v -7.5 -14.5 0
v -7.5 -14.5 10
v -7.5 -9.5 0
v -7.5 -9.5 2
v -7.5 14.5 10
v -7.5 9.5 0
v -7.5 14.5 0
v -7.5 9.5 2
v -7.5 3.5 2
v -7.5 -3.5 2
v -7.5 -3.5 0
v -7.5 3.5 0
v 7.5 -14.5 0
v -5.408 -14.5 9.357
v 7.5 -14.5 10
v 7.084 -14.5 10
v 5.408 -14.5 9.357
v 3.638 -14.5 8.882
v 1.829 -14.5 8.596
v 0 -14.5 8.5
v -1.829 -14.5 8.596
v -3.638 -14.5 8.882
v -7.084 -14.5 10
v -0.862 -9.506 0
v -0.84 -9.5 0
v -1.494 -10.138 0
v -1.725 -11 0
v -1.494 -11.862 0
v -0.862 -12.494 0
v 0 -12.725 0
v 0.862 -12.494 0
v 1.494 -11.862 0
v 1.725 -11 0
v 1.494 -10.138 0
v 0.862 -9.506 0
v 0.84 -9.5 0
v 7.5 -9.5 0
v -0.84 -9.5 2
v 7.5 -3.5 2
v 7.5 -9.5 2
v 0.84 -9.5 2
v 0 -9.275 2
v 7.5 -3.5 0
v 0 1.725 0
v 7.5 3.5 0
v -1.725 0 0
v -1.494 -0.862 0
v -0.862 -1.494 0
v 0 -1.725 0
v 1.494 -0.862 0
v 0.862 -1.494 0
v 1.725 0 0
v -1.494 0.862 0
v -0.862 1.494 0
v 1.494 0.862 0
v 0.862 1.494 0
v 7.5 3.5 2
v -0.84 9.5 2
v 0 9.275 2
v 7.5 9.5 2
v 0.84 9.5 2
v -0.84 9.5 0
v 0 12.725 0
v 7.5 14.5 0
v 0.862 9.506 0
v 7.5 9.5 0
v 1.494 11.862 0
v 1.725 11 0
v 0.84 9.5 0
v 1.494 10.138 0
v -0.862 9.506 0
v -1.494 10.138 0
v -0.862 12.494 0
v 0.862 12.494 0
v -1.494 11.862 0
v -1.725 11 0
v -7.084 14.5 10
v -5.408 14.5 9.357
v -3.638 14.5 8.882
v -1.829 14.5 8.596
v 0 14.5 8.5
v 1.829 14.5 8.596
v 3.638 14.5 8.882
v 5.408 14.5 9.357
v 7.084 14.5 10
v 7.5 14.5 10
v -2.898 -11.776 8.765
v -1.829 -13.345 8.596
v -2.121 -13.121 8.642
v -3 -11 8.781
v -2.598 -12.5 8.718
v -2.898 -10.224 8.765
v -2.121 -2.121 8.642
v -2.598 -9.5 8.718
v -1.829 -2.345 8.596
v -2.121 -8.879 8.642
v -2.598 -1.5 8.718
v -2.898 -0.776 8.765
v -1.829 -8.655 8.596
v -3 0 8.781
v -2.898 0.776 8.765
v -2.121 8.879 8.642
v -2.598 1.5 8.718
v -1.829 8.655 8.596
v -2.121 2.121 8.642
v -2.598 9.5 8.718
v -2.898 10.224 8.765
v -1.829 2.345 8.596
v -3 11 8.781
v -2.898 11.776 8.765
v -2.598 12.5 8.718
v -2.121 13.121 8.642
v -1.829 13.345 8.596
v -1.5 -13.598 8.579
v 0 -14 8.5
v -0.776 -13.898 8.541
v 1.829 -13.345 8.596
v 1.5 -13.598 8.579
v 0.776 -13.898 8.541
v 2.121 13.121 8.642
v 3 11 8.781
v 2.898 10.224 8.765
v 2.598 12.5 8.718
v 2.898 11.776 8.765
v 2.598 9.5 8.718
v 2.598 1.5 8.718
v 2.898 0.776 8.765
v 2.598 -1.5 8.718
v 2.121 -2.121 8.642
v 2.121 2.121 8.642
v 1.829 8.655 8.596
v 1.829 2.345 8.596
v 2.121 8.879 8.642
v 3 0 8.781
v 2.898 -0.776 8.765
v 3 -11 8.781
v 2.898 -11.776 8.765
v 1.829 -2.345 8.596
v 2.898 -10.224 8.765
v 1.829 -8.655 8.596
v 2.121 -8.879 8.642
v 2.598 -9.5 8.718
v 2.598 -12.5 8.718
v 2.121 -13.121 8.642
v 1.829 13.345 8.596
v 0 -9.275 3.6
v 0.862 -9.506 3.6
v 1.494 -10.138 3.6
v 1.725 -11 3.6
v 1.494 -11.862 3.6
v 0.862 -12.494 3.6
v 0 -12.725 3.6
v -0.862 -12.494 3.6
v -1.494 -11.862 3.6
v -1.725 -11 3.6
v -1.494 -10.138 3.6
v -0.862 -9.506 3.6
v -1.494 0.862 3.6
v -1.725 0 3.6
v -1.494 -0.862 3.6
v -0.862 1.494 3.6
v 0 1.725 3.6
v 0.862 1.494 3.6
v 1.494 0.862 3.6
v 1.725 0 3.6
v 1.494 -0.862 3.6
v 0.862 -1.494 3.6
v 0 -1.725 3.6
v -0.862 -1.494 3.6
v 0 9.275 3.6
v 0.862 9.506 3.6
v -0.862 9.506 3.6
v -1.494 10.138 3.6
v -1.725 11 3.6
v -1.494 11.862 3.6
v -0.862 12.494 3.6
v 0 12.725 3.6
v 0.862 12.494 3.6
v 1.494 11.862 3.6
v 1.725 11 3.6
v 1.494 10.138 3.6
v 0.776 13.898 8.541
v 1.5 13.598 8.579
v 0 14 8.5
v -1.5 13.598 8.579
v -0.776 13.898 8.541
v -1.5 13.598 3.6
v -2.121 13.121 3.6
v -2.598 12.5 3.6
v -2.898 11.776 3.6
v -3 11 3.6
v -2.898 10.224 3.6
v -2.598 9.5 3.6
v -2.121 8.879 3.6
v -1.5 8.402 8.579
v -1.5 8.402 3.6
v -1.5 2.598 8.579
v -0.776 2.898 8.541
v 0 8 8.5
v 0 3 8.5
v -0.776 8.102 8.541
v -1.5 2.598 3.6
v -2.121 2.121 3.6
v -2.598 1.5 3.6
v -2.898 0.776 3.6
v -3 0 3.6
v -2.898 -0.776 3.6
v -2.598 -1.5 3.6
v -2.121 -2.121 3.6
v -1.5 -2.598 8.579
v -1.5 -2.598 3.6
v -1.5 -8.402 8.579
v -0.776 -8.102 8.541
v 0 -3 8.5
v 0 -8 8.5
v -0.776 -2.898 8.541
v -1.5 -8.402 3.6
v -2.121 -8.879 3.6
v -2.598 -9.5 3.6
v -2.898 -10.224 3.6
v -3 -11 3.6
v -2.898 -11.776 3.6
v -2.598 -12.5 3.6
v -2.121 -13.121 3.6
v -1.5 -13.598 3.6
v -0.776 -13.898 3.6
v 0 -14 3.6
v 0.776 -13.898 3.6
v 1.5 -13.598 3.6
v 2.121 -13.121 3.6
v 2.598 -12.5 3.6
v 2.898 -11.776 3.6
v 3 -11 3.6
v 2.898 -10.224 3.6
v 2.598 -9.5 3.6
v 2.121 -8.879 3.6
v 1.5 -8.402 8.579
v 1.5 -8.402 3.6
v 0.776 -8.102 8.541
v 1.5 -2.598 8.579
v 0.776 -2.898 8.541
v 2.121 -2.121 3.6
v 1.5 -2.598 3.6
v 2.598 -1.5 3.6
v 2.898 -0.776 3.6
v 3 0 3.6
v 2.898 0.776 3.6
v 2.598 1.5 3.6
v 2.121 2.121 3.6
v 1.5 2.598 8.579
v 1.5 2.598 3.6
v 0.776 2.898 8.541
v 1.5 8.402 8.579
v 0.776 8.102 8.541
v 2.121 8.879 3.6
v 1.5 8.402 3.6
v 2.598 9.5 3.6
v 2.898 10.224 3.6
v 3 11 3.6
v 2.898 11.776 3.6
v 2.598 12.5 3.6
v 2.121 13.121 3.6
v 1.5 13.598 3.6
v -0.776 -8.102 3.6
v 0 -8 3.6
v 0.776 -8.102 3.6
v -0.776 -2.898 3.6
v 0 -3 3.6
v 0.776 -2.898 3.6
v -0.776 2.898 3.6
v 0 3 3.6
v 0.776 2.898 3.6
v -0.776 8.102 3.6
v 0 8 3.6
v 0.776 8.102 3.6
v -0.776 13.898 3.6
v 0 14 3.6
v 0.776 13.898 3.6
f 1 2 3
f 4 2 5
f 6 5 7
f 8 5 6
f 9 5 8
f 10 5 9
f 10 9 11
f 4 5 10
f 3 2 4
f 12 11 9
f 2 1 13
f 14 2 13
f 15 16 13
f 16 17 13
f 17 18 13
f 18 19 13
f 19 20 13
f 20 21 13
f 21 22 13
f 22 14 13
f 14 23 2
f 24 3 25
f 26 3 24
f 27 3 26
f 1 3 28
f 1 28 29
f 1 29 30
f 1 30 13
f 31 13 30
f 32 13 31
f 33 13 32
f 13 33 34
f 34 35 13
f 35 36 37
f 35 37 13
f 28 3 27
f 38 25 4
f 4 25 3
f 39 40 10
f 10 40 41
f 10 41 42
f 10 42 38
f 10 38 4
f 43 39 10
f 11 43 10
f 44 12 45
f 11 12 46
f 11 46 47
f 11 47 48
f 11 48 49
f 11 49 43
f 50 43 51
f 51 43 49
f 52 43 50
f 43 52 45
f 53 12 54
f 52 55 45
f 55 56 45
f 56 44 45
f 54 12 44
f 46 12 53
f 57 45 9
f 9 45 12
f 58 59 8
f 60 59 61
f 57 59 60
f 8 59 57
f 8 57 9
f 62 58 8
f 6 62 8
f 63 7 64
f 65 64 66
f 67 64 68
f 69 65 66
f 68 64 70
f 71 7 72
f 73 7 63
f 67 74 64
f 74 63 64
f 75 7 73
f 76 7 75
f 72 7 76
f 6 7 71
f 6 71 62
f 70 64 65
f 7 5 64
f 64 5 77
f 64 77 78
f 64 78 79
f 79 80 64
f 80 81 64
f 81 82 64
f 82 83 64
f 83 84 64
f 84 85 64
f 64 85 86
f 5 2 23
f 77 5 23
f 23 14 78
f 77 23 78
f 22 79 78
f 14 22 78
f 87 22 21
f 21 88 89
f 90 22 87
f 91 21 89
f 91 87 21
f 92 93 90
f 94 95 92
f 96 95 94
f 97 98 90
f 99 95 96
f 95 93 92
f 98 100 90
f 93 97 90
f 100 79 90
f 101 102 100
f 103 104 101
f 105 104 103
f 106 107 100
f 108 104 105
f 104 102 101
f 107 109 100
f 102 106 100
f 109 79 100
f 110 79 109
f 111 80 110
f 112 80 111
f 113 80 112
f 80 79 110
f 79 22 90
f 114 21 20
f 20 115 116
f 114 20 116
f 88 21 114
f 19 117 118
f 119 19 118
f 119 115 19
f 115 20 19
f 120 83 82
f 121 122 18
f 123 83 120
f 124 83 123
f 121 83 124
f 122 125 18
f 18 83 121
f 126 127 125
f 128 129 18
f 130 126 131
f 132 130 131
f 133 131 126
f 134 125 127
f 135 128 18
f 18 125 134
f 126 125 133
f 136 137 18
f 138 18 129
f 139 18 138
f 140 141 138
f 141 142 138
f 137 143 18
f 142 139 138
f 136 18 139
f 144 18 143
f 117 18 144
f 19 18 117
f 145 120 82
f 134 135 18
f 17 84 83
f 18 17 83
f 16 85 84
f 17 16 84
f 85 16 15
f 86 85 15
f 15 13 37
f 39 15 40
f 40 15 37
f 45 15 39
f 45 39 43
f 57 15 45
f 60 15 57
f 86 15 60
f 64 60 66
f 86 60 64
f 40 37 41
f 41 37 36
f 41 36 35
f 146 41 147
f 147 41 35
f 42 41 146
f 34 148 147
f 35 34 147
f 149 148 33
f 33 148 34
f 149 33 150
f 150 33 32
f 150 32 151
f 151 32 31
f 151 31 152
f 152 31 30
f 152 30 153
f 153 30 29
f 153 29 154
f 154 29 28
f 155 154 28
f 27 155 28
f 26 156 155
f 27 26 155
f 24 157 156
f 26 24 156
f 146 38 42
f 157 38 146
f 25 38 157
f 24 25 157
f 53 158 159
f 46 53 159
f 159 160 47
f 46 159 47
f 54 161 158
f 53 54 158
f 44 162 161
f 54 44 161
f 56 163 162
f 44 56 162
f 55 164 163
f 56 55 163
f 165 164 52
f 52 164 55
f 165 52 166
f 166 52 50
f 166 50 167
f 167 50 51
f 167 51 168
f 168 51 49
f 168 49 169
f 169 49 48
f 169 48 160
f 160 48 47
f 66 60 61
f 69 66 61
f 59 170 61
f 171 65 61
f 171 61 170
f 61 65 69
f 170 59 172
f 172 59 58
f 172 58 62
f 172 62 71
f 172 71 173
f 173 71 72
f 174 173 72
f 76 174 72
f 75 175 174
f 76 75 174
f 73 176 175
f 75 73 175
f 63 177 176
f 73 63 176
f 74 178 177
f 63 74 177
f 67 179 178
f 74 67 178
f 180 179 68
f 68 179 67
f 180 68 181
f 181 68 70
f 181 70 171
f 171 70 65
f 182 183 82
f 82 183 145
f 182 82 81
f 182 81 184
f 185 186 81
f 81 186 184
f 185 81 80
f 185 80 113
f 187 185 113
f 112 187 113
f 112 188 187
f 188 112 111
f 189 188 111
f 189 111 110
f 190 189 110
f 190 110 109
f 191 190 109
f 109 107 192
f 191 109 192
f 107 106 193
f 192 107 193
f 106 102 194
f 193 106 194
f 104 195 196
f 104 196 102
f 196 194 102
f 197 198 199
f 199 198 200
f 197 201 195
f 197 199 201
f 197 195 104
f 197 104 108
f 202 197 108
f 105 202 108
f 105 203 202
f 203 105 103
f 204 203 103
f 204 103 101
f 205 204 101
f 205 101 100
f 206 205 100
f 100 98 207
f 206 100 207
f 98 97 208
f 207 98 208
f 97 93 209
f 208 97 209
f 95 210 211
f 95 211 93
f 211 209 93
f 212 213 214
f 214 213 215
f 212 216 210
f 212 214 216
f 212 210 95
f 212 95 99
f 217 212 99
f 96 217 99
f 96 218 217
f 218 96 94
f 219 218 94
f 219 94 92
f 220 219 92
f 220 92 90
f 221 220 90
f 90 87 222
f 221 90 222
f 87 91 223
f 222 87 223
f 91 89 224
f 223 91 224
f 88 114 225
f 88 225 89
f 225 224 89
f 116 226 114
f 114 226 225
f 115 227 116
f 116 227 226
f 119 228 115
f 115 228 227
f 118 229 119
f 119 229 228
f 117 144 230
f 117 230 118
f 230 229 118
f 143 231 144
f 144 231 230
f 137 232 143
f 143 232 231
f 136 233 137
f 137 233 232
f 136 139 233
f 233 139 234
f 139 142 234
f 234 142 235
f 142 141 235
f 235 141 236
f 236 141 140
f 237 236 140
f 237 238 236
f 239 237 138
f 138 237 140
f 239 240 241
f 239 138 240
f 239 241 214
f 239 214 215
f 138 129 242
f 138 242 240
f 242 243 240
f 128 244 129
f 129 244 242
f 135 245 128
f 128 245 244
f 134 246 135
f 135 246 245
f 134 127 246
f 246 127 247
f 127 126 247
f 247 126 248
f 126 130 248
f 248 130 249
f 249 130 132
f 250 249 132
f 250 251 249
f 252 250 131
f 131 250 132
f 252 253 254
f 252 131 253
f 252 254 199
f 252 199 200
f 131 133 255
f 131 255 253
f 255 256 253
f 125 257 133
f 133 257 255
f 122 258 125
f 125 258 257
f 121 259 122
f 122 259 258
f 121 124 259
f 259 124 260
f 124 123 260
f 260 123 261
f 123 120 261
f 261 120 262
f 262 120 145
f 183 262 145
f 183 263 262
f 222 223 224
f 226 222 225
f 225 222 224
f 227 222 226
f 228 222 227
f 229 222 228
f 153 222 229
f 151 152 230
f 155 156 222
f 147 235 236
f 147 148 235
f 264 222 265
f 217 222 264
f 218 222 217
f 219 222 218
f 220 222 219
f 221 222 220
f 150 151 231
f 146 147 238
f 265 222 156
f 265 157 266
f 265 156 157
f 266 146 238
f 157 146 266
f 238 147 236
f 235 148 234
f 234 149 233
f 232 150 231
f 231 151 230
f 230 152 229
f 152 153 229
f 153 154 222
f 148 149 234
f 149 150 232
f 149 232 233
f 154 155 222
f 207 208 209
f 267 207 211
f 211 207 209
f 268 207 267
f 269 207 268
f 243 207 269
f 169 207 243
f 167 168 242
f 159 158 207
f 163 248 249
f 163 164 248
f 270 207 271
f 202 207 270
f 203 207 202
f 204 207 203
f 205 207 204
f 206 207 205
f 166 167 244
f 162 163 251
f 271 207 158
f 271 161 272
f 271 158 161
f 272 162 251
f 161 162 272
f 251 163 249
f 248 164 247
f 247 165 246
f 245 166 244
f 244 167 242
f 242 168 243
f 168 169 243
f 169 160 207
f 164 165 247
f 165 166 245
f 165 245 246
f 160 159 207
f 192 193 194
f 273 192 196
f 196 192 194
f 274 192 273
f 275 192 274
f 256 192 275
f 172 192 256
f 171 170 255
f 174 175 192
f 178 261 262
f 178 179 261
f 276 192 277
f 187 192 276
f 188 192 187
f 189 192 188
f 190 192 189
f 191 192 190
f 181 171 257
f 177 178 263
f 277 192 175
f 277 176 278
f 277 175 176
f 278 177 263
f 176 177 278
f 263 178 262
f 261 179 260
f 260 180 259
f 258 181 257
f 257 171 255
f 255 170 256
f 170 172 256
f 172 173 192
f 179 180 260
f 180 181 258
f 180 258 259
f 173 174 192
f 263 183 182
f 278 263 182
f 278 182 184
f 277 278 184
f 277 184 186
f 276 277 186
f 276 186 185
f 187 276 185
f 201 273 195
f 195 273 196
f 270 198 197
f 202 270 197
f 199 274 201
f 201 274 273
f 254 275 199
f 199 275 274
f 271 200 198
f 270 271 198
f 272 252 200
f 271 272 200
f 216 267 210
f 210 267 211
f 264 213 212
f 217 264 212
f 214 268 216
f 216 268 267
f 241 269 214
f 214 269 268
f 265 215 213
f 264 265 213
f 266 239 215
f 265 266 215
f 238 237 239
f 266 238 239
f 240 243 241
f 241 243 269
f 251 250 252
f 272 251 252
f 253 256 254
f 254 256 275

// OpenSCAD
// file: configuration.scad
// Increase this if your slicer or printer make holes too tight.
extra_radius = 0.1;

// OD = outside diameter, corner to corner.
m3_nut_od = 6.1;
m3_nut_radius = m3_nut_od/2 + 0.2 + extra_radius;

// Major diameter of metric 3mm thread.
m3_major = 2.85;
m3_radius = m3_major/2 + extra_radius;
m3_wide_radius = m3_major/2 + extra_radius + 0.2;

// NEMA17 stepper motors.
motor_shaft_diameter = 5;
motor_shaft_radius = motor_shaft_diameter/2 + extra_radius;

// Frame brackets.
thickness = 3.6;
// main file
include <configuration.scad>;

module frame_extruder() {
  difference() {
    union() {
      translate([0, 0, 5]) cube([15, 29, 10], center=true);
    }
    translate([0, 0, 26]) rotate([90, 0, 0])
      cylinder(r=17.5, h=30, center=true, $fn=60);
    for (y = [-6.5, 6.5]) {
      translate([0, y, 0])
        cube([20, 6, 4], center=true);
    }
    for (y = [-11, 0, 11]) {
      translate([0, y, 0])
        cylinder(r=m3_wide_radius, h=20, center=true, $fn=12);
      translate([0, y, thickness])
        # cylinder(r=3, h=10, $fn=24);
    }
  }
}

frame_extruder();
